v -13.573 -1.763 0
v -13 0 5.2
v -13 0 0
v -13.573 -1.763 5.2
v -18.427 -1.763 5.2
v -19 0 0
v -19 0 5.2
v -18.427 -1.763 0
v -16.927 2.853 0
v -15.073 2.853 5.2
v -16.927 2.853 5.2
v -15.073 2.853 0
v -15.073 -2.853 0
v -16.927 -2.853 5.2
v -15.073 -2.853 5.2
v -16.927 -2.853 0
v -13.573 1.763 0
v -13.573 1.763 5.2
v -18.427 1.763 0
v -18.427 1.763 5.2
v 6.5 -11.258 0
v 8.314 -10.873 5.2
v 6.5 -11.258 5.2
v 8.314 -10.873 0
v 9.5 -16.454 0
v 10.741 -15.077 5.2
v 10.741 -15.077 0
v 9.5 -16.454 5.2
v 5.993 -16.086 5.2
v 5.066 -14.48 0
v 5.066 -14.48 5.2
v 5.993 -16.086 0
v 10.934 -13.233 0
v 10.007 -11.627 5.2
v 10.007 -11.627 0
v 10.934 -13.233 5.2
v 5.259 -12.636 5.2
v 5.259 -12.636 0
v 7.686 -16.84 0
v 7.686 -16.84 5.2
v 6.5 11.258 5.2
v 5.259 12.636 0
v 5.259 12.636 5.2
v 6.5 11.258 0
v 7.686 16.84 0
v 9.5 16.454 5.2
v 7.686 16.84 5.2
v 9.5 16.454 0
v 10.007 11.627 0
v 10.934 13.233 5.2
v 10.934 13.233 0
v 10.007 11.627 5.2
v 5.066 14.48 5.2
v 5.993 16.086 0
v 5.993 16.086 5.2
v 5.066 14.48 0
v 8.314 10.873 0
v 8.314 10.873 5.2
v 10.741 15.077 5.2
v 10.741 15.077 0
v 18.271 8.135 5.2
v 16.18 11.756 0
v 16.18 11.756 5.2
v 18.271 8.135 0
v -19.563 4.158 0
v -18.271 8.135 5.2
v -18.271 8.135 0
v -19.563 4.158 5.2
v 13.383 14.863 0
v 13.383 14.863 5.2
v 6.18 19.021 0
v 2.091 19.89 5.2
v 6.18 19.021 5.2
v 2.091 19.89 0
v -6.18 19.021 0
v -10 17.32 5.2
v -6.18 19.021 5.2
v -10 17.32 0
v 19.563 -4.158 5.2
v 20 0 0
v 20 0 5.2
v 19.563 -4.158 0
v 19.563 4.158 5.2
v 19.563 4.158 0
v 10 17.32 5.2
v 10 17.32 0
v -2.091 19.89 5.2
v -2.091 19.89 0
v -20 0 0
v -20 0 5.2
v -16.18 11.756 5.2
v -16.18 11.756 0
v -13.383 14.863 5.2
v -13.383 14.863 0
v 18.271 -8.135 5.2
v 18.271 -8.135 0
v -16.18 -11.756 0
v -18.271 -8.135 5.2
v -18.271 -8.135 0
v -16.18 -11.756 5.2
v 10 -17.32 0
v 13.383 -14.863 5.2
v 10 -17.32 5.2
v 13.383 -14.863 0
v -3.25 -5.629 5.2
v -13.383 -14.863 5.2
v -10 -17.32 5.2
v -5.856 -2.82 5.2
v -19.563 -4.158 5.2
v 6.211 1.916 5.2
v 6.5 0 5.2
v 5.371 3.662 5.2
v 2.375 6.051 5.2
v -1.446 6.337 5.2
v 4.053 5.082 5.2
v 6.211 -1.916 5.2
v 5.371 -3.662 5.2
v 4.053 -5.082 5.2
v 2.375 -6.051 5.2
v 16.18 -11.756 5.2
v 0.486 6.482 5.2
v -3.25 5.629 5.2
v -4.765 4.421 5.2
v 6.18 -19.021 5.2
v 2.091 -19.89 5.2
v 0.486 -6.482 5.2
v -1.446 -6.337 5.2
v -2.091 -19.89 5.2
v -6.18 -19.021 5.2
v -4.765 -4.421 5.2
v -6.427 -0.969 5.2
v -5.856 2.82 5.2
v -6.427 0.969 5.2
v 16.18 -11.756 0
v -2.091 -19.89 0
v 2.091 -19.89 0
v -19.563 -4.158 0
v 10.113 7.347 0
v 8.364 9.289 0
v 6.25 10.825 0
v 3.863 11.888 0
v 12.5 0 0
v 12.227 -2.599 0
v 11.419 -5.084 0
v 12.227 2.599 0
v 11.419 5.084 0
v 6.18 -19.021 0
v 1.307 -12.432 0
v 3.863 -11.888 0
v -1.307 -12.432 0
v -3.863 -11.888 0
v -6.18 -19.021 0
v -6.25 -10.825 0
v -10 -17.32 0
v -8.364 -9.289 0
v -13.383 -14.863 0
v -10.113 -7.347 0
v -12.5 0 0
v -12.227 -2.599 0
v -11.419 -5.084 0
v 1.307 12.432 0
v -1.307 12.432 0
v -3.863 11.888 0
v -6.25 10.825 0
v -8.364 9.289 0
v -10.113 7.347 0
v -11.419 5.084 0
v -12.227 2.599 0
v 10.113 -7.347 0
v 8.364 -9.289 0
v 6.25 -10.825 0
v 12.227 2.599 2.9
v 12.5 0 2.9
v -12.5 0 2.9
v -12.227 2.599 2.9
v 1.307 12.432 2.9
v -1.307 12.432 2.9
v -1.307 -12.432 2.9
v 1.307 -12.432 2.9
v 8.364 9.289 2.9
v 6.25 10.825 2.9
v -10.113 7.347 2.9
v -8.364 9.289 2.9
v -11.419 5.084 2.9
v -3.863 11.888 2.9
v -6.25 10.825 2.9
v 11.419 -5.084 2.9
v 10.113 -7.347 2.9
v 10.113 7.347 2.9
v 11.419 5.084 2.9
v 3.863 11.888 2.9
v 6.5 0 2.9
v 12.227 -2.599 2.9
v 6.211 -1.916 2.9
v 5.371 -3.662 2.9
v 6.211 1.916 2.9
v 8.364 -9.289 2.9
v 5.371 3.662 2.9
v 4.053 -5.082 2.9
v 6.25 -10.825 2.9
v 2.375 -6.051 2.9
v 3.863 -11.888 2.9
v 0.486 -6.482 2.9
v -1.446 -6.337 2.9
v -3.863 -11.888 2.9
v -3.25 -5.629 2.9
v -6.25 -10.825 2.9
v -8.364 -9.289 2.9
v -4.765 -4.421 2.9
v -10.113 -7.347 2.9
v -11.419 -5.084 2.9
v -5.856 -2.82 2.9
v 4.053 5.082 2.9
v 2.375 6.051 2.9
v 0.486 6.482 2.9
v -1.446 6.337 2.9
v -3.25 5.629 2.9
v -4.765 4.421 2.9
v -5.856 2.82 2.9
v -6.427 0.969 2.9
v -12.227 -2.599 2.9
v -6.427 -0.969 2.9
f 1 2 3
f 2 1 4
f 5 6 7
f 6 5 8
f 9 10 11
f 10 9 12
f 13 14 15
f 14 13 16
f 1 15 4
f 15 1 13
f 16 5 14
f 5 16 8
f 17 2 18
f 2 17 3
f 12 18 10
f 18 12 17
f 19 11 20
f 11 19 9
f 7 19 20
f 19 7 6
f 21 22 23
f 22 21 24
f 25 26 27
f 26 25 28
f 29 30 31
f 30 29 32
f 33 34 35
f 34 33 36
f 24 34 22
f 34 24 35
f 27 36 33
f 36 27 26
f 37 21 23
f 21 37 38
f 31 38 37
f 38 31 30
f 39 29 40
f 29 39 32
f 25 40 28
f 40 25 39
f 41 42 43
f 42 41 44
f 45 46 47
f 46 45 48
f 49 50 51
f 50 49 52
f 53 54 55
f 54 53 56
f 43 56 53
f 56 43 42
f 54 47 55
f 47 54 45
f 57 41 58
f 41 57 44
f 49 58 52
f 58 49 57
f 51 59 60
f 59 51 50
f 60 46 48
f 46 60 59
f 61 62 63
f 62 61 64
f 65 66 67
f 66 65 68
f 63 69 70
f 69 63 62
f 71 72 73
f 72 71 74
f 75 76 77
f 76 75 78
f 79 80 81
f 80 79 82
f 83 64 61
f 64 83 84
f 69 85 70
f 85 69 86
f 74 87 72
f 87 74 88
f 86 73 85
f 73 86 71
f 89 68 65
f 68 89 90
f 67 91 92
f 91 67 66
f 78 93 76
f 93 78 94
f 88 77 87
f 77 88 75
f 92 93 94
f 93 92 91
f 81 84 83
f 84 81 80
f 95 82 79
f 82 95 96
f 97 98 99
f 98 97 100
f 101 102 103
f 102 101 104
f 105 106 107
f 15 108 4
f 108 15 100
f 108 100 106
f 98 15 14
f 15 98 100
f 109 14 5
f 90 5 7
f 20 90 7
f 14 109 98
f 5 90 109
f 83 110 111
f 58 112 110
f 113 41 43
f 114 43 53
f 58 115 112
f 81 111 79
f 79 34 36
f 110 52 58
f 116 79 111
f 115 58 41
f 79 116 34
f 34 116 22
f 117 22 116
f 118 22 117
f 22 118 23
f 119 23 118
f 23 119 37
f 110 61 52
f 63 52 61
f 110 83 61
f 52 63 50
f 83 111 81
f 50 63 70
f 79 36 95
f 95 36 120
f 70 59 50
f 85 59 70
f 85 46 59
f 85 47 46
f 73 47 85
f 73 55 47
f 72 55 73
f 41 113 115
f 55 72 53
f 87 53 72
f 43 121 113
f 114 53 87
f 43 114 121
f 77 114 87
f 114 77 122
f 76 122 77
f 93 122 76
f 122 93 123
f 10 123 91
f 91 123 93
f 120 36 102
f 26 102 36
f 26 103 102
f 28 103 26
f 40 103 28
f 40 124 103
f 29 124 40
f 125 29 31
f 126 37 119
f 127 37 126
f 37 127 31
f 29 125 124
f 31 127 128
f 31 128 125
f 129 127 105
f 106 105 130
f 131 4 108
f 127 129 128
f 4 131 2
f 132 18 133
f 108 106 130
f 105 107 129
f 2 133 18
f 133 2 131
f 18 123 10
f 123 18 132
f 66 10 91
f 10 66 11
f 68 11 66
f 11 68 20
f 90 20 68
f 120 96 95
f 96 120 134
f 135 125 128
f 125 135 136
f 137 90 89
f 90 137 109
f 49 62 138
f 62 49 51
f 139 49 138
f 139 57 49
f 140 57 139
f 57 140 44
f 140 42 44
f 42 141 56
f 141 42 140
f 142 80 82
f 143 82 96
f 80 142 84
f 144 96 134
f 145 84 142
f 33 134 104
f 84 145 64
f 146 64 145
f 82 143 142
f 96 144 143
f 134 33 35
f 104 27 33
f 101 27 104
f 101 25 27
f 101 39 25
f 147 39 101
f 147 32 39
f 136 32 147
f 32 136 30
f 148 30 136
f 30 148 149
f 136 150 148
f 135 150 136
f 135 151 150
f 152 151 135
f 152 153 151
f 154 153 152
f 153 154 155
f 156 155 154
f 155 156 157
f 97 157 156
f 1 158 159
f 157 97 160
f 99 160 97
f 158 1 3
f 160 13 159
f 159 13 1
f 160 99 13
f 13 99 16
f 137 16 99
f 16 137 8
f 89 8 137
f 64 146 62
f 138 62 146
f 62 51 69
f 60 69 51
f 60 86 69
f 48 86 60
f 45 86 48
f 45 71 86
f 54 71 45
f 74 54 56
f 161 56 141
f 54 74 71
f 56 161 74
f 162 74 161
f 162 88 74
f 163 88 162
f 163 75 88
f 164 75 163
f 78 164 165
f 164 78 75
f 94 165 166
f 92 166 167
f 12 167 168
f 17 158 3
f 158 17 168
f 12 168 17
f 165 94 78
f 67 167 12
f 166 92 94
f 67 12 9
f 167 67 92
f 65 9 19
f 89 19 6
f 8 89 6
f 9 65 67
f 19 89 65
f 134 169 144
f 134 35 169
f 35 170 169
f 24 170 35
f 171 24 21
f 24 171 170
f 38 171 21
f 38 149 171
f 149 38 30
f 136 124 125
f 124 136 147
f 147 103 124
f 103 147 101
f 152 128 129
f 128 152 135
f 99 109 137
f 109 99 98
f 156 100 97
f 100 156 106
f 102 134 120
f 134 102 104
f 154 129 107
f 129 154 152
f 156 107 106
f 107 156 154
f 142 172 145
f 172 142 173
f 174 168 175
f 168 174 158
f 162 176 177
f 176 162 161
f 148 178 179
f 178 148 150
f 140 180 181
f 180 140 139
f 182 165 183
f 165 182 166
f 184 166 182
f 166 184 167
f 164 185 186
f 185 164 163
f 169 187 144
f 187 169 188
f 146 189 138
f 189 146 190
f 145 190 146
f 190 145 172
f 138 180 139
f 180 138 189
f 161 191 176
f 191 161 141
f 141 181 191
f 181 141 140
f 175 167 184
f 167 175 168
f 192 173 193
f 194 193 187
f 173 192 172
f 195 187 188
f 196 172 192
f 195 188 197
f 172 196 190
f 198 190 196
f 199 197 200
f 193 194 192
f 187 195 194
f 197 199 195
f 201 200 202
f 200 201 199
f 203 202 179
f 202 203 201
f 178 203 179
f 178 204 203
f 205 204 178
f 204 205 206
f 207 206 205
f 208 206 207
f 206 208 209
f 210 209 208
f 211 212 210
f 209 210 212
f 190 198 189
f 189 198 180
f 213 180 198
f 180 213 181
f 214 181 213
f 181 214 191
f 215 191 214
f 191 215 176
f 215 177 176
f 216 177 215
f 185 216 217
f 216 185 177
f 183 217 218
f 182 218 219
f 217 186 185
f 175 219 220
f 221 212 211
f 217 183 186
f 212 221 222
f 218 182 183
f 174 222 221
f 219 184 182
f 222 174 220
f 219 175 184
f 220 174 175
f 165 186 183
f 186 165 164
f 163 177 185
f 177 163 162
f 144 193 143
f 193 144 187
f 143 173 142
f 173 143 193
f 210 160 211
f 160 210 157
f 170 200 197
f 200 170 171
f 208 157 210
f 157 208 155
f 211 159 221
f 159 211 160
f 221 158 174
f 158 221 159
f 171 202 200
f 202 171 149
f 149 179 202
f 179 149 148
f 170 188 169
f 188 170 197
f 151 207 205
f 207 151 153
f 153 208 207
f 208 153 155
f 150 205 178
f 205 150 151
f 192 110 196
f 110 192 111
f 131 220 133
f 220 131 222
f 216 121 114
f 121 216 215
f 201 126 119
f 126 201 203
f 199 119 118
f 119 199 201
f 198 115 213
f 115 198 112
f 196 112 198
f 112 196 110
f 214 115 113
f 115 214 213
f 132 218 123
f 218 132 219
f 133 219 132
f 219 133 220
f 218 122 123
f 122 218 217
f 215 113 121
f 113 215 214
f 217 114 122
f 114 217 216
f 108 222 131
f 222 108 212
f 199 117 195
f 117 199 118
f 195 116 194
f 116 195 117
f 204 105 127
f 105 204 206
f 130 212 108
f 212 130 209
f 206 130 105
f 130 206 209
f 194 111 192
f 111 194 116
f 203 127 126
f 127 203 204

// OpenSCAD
difference() {
	cylinder(d = 40.0000000000, h = 5.2000000000);
	translate(v = [0, 0, -0.1000000000]) {
		cylinder(d = 25, h = 3);
	}
	translate(v = [0, 0, -0.1000000000]) {
		cylinder(d = 13, h = 5.4000000000);
	}
	rotate(a = [180, 0, 0.0000000000]) {
		translate(v = [-16, 0, -3.2000000000]) {
			union() {
				cylinder($fn = 100, d = 4.3000000000, h = 30);
				translate(v = [0, 0, -6.0000000000]) {
					cylinder(d = 6.0000000000, h = 10);
				}
			}
		}
	}
	rotate(a = [180, 0, 120.0000000000]) {
		translate(v = [-16, 0, -3.2000000000]) {
			union() {
				cylinder($fn = 100, d = 4.3000000000, h = 30);
				translate(v = [0, 0, -6.0000000000]) {
					cylinder(d = 6.0000000000, h = 10);
				}
			}
		}
	}
	rotate(a = [180, 0, 240.0000000000]) {
		translate(v = [-16, 0, -3.2000000000]) {
			union() {
				cylinder($fn = 100, d = 4.3000000000, h = 30);
				translate(v = [0, 0, -6.0000000000]) {
					cylinder(d = 6.0000000000, h = 10);
				}
			}
		}
	}
}
